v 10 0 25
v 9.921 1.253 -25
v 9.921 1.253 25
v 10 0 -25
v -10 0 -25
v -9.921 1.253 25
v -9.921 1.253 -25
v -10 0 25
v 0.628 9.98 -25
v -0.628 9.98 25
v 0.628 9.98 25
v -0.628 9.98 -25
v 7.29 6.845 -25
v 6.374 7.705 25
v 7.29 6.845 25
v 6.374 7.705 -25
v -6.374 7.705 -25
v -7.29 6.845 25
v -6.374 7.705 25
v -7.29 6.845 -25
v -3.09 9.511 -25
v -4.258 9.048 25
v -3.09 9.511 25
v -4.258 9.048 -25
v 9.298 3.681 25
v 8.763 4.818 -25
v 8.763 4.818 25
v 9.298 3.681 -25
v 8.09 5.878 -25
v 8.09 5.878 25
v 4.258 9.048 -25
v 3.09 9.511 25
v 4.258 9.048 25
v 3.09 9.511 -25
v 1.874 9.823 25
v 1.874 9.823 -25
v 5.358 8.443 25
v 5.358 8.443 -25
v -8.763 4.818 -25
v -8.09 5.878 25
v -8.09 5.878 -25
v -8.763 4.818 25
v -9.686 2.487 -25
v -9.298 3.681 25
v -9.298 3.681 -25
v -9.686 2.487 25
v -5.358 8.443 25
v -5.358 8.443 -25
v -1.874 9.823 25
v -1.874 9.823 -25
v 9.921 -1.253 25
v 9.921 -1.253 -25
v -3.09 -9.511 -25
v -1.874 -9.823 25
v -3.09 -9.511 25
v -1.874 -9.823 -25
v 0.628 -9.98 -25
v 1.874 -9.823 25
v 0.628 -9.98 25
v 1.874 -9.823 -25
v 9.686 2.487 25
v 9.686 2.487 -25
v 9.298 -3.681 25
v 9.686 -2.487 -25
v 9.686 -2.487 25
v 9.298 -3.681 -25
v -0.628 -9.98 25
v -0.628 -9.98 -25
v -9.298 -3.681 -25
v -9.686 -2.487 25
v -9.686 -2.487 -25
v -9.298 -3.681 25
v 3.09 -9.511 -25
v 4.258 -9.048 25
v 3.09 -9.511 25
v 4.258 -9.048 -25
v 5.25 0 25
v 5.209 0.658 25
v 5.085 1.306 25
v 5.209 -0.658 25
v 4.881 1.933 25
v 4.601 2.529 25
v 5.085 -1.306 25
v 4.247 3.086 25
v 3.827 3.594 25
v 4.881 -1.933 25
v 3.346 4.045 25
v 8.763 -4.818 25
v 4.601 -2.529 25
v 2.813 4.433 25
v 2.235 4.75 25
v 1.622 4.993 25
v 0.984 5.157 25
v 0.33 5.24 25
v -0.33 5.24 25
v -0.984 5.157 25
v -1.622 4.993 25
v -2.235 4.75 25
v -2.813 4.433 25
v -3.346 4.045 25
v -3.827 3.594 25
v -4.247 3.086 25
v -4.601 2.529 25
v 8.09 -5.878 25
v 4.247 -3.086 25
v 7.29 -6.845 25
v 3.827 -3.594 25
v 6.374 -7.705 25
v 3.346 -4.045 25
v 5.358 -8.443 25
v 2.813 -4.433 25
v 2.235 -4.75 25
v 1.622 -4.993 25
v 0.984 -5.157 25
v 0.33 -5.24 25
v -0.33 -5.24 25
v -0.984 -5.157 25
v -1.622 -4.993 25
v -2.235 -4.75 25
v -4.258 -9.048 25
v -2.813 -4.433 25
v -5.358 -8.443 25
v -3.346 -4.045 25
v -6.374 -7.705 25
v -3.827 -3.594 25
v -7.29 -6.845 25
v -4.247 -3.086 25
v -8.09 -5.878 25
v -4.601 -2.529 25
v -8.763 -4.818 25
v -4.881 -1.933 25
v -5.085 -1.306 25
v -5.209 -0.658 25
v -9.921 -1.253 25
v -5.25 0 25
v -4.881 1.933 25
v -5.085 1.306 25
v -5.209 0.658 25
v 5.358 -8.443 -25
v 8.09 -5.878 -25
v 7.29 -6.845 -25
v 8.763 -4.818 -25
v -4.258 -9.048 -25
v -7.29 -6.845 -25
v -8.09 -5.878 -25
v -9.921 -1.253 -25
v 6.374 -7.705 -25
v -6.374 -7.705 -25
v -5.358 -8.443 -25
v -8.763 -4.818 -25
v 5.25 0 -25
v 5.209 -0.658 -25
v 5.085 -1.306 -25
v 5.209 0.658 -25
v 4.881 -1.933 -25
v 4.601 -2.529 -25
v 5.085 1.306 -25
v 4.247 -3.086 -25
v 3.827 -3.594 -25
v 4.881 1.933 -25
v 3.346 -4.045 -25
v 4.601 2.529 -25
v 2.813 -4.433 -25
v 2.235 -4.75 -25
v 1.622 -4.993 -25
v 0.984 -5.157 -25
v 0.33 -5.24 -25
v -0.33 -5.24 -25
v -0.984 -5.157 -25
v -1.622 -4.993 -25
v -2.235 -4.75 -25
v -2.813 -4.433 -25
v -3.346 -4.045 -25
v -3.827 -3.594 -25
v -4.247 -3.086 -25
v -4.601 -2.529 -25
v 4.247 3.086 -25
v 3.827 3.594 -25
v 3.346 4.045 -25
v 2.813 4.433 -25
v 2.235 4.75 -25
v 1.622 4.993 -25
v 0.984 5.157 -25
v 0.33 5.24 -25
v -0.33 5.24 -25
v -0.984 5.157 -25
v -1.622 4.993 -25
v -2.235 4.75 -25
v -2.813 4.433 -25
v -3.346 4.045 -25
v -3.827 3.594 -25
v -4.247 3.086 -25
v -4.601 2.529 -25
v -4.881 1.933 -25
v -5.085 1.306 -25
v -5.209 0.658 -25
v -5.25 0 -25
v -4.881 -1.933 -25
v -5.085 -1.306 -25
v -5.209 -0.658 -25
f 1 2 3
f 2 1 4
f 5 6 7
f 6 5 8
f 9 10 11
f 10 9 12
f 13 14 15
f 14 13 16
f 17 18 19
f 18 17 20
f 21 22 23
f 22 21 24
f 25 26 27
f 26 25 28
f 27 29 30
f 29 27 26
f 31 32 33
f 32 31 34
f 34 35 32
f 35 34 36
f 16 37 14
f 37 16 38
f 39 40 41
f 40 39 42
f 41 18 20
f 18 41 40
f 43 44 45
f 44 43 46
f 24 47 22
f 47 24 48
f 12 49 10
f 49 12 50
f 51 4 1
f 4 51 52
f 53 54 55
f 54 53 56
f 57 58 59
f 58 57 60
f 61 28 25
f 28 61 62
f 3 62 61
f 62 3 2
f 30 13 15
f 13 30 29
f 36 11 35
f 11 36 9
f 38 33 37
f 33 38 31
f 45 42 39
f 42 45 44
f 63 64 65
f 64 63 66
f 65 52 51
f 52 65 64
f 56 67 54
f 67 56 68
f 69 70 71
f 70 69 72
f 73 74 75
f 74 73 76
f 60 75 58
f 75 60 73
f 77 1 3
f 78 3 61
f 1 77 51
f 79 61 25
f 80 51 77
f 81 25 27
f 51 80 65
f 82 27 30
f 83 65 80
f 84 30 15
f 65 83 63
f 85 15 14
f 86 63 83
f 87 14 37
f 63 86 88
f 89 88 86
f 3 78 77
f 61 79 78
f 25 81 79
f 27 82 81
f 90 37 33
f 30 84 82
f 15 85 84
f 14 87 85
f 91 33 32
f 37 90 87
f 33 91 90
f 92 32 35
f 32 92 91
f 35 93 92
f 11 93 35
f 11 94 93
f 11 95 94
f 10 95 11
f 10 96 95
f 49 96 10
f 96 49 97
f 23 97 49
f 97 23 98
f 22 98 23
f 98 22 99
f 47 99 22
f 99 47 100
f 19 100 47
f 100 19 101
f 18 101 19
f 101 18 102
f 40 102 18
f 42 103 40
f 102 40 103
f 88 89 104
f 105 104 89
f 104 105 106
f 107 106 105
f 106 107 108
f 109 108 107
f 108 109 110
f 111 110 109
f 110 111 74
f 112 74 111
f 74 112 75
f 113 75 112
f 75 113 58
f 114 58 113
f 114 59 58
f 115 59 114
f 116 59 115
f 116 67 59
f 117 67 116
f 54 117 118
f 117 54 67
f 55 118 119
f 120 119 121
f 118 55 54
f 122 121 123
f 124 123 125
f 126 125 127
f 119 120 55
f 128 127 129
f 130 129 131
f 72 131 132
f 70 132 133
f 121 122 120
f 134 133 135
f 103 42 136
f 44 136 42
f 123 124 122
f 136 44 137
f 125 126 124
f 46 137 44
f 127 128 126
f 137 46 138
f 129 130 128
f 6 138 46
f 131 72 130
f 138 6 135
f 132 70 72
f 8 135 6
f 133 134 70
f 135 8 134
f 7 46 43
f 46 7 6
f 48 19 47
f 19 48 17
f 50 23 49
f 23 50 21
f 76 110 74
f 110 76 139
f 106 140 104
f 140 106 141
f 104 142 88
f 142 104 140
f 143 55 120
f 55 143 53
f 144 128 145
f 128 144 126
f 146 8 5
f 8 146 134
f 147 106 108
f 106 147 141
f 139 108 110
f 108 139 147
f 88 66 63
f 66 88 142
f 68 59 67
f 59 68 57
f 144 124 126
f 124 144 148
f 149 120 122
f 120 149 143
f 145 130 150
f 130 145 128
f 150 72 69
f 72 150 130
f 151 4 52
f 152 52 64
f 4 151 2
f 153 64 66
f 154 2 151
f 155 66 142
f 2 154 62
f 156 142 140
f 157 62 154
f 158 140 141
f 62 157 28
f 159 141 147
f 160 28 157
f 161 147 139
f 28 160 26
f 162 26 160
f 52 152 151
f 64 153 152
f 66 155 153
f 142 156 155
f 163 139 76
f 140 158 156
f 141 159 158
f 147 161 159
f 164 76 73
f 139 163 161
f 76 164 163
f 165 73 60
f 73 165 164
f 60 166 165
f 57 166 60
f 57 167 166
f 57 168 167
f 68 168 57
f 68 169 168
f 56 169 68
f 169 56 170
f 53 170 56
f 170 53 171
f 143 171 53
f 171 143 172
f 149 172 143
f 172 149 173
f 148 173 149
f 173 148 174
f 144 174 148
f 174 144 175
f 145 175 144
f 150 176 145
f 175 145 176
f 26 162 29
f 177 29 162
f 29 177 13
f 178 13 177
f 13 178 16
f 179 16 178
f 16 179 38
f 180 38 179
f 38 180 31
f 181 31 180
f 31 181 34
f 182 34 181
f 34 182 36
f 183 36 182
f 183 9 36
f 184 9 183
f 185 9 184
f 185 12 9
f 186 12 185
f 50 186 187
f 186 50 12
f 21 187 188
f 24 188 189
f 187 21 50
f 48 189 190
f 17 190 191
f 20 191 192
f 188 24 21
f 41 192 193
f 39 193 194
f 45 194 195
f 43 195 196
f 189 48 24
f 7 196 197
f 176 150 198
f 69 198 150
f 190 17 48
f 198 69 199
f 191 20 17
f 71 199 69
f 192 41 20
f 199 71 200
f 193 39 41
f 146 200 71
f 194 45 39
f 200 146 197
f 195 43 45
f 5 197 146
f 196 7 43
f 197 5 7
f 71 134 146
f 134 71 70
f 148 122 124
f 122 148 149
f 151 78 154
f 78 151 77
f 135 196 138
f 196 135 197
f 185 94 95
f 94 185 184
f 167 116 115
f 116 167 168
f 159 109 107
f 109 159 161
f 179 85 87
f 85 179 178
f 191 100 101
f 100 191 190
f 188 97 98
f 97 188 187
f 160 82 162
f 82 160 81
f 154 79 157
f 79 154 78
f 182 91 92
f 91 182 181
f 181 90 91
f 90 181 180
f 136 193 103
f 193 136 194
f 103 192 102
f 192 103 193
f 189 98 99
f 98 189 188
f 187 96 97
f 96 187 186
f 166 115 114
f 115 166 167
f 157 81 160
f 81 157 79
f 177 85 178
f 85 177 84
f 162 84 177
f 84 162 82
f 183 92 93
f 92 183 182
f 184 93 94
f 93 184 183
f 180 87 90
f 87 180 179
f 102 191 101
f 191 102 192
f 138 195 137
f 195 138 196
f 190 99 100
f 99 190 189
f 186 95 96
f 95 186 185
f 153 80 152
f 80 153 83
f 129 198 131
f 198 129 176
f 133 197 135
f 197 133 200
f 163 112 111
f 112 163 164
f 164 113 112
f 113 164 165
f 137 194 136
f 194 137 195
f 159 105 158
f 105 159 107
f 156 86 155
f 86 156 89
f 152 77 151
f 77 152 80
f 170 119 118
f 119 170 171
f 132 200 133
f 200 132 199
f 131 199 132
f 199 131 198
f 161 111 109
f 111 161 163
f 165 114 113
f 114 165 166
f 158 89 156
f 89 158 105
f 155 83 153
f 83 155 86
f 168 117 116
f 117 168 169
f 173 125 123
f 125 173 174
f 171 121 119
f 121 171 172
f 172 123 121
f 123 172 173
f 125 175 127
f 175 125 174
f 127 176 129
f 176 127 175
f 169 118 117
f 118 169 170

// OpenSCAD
$fn = 50;


difference() {
	union() {
		translate(v = [0, 0, -25.0000000000]) {
			cylinder(h = 50, r = 10.0000000000);
		}
	}
	union() {
		translate(v = [0, 0, -100.0000000000]) {
			cylinder(h = 200, r = 5.2500000000);
		}
	}
}
